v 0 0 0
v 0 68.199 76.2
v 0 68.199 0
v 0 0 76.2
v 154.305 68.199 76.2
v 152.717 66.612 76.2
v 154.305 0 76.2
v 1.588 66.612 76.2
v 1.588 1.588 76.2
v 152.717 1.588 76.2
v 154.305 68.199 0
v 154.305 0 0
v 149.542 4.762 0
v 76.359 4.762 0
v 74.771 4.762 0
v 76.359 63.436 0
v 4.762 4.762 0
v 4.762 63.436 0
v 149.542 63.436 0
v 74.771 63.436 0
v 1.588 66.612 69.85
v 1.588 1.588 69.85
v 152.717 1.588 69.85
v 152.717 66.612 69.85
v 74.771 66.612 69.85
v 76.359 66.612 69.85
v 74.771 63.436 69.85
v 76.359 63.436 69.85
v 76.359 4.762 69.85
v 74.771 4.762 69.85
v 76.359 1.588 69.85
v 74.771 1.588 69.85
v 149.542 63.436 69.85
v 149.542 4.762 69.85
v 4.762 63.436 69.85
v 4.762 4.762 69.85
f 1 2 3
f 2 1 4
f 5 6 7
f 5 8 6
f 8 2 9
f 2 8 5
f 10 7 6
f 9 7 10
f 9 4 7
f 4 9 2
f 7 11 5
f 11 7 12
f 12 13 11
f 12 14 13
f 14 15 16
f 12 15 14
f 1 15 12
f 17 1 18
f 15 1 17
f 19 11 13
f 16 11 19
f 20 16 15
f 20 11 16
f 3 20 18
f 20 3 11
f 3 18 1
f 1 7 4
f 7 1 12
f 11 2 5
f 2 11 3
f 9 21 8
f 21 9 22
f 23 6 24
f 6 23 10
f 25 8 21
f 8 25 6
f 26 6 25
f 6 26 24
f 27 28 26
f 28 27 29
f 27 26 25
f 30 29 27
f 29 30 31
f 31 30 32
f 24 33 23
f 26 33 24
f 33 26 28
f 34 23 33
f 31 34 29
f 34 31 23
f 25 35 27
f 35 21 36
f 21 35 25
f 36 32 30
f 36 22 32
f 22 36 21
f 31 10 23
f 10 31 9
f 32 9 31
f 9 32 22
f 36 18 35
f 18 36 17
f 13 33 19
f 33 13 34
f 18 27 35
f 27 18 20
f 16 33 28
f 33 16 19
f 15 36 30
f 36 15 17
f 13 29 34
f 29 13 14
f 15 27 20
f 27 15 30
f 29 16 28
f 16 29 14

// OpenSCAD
total_hgt = 3.00;
bat_width = 5.95;
bat_depth = 2.56;
wall      = 0.0625;
lip       = 0.25;

function in2mm(x) = x * 25.4;

difference () {
  translate ([0, 0, 0])
    cube ([in2mm (bat_width + (wall * 2)), in2mm (bat_depth + (wall * 2)), in2mm (total_hgt)]);
  translate ([in2mm (wall), in2mm (wall), in2mm (total_hgt - lip)])
    cube ([in2mm (bat_width), in2mm (bat_depth), in2mm (lip) + 0.01]);
  translate ([in2mm (wall * 3), in2mm (wall * 3), -0.01])
    cube ([in2mm (bat_width - (wall * 4)), in2mm (bat_depth - (wall * 4)), in2mm (total_hgt)]);
}

translate ([in2mm ((bat_width / 2) - (wall / 2)), in2mm (wall), 0])
  cube ([in2mm (wall), in2mm (bat_depth), in2mm (total_hgt - lip)]);
